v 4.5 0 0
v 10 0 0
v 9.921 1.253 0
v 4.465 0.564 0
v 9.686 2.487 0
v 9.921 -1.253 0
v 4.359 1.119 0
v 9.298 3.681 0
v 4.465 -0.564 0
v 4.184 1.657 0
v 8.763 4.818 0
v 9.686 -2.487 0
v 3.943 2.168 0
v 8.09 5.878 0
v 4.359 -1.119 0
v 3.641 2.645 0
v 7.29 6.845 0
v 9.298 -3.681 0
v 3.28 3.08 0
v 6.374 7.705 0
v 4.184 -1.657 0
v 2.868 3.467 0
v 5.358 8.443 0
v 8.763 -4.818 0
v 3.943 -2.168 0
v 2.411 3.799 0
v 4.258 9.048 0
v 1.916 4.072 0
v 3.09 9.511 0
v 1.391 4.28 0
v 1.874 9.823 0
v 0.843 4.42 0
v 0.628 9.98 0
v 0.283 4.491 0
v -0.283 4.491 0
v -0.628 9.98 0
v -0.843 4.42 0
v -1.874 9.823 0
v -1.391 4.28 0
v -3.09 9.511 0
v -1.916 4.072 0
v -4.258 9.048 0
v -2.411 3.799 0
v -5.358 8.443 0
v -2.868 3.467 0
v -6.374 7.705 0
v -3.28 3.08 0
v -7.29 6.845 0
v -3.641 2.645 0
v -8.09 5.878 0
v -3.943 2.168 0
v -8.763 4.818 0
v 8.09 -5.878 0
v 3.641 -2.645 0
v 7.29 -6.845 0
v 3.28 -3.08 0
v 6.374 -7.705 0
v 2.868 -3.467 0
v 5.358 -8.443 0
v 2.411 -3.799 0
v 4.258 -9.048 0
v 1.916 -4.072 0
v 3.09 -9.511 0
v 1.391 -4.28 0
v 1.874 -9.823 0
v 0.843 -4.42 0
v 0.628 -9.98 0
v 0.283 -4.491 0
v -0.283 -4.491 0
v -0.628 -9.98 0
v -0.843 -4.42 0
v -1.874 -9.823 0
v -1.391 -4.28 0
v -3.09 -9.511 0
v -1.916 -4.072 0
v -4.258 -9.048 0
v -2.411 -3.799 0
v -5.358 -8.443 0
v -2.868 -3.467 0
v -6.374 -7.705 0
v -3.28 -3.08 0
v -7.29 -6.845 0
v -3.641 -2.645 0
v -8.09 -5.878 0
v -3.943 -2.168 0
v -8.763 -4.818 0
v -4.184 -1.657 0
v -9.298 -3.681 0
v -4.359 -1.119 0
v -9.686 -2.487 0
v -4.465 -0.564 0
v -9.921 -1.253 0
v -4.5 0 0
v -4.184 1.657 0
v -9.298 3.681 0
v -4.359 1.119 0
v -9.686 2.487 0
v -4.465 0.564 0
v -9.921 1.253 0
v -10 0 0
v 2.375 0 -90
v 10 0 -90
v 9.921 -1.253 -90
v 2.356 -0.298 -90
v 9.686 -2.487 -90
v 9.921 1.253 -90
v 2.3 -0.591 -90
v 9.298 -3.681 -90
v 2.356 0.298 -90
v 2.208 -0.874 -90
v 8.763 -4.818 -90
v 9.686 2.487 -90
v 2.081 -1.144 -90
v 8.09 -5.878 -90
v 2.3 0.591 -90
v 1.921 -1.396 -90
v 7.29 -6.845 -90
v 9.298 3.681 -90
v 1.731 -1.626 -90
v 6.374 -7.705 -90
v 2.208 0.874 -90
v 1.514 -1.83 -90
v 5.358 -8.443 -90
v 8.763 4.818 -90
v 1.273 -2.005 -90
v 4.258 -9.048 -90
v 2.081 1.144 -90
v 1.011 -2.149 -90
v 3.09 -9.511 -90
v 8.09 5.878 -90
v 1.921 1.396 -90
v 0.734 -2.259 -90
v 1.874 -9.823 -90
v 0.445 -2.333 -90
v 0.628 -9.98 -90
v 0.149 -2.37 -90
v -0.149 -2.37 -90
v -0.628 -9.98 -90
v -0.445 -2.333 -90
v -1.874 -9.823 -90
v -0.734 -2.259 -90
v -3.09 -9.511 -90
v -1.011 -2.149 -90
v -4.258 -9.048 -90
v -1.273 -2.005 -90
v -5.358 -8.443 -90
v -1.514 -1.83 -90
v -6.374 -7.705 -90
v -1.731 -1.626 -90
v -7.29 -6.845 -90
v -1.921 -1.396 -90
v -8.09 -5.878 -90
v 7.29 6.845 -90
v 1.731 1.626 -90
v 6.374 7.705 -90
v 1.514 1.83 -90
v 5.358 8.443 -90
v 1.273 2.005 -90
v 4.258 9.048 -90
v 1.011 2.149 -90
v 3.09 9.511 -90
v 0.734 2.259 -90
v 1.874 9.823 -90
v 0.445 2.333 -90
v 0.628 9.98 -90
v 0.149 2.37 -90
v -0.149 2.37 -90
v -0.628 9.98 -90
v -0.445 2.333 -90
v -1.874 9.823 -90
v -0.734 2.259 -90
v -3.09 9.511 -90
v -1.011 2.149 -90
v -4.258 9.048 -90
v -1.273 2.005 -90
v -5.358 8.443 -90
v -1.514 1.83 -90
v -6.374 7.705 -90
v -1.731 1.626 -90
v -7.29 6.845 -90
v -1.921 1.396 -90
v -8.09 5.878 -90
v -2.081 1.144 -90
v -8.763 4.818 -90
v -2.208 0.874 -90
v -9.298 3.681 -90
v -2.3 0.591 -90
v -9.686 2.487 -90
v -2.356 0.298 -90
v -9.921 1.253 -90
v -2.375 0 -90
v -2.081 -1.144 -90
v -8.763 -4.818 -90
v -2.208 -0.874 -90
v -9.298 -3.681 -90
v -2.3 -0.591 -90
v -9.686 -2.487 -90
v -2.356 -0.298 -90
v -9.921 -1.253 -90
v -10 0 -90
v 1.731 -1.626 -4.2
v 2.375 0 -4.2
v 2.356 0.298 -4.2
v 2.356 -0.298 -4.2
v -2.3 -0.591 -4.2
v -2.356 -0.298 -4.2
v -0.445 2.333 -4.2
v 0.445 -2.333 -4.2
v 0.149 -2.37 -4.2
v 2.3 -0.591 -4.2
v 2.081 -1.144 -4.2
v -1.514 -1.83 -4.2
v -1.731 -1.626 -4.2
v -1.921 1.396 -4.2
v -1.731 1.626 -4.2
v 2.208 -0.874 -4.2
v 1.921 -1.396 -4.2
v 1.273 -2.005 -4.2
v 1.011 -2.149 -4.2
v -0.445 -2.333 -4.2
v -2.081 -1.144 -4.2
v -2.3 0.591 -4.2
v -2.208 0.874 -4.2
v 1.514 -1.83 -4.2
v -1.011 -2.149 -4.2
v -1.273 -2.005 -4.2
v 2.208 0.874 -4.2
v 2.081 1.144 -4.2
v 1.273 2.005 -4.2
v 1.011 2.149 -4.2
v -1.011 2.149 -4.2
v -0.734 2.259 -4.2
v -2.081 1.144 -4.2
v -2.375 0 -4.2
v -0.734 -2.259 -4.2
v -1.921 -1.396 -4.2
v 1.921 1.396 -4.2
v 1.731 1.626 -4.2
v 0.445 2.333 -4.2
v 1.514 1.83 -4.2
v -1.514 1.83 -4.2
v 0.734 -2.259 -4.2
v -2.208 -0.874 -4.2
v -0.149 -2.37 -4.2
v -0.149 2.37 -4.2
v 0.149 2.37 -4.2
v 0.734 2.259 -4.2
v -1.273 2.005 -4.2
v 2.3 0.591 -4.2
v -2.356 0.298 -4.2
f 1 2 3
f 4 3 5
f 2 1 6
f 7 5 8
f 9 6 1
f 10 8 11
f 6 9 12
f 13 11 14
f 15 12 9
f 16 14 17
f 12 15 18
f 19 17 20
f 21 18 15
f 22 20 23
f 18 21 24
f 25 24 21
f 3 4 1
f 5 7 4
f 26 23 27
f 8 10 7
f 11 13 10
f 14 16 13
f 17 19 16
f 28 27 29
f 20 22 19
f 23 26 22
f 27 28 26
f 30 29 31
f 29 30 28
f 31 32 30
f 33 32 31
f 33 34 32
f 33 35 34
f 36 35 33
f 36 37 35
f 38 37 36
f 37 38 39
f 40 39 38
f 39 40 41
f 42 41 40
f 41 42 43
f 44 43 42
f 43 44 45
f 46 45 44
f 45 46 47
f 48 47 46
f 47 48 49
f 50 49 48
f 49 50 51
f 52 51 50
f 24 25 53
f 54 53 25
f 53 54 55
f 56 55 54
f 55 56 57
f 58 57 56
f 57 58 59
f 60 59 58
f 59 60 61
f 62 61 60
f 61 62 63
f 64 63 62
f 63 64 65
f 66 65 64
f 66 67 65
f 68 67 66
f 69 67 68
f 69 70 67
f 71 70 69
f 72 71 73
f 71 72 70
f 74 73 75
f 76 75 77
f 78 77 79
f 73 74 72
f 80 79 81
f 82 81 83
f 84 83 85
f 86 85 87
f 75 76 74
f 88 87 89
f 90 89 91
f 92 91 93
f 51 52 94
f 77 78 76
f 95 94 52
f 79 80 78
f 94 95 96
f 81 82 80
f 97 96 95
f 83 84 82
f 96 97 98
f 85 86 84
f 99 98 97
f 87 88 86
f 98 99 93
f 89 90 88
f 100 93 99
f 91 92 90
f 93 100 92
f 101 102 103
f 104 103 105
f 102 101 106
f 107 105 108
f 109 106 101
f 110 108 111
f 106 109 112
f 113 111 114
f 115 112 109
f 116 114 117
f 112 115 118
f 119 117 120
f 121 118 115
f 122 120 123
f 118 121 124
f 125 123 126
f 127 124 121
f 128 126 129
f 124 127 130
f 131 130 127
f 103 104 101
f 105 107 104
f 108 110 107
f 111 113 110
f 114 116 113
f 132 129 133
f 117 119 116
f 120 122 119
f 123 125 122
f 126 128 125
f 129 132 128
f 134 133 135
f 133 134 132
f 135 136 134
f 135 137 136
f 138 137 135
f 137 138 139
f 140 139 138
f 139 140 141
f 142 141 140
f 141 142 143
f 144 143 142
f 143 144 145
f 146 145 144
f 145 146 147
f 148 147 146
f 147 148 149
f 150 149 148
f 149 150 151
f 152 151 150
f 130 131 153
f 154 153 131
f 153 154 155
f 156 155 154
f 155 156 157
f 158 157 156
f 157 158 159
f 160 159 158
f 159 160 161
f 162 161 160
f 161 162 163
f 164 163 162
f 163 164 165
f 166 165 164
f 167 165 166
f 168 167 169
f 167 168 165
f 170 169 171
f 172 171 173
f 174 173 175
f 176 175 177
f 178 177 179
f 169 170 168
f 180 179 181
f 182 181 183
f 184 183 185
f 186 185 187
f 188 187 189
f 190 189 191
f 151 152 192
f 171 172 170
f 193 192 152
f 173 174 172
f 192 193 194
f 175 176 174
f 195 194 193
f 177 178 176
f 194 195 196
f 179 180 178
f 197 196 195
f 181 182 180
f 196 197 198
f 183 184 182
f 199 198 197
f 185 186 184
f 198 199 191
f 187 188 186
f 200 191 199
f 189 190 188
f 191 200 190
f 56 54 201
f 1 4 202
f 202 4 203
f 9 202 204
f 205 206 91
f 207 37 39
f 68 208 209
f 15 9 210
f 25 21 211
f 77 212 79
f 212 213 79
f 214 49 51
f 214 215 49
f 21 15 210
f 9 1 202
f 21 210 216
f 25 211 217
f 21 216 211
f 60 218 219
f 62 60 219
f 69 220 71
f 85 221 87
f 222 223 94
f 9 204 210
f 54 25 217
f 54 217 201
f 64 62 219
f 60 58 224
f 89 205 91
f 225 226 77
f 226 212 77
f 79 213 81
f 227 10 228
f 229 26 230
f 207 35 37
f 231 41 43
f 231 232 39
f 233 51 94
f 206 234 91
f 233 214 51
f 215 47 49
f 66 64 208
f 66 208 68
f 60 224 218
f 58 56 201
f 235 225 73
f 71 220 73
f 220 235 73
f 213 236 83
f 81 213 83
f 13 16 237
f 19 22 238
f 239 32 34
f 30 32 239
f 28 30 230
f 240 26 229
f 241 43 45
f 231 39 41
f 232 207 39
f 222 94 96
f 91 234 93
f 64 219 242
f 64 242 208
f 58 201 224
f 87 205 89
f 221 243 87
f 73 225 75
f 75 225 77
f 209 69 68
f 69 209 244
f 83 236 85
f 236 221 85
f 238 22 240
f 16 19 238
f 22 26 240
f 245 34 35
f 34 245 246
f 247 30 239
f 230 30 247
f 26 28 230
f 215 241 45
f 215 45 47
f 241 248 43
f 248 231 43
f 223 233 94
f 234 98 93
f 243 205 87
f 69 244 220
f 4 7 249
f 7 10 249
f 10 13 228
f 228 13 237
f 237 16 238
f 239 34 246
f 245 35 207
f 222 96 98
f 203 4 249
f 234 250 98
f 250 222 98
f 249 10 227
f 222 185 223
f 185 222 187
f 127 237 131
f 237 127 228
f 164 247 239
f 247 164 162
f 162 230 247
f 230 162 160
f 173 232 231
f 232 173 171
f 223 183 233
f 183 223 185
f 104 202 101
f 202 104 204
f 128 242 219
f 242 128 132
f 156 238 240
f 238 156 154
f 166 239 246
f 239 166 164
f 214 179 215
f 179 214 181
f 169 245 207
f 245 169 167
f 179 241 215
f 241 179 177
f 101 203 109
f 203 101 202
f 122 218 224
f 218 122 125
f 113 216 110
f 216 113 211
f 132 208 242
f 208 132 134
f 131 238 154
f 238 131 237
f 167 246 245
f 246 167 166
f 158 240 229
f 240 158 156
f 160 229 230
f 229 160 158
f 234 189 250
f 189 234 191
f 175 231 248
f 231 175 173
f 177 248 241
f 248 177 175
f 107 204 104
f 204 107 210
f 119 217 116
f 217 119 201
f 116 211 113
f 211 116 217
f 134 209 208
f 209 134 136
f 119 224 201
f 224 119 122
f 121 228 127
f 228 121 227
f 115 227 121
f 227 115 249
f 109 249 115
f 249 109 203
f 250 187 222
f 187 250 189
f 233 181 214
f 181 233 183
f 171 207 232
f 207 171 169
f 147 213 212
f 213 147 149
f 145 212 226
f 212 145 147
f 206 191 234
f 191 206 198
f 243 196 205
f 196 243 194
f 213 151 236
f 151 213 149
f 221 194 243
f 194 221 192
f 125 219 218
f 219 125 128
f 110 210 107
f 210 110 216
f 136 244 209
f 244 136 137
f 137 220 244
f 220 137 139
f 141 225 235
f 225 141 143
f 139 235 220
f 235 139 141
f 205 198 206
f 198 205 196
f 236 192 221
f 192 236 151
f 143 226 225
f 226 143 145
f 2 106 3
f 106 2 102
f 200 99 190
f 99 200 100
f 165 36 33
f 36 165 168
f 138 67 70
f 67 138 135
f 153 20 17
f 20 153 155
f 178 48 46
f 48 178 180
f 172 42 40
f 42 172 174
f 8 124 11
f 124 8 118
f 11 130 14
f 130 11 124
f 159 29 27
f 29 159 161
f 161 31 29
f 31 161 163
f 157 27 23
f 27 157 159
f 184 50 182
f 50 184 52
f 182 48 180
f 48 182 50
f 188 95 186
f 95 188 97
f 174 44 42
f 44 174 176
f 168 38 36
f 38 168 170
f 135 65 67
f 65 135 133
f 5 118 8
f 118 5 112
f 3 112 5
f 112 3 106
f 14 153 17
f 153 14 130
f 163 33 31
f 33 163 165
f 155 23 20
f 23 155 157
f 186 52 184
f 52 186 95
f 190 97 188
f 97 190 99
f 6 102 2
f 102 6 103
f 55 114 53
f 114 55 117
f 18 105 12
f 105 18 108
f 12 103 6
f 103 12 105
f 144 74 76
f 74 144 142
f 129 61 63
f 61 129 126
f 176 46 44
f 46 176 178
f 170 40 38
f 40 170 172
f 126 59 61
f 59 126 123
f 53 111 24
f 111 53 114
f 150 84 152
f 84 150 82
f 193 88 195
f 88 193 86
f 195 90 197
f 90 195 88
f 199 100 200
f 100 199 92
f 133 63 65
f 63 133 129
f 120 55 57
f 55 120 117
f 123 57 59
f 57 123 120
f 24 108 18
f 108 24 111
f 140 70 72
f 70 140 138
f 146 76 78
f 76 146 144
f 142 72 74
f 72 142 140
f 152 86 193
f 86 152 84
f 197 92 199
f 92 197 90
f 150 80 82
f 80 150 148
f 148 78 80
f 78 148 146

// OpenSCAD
$fn = 50;


difference() {
	union() {
		translate(v = [0, 0, -90.0000000000]) {
			cylinder(h = 90, r = 10.0000000000);
		}
		cylinder(h = 0, r = 20.0000000000);
	}
	union() {
		translate(v = [0, 0, 0]) {
			rotate(a = [0, 0, 0]) {
				difference() {
					union() {
						#translate(v = [0, 0, -90.0000000000]) {
							cylinder(h = 90, r = 2.2500000000);
						}
						#translate(v = [0, 0, -4.2000000000]) {
							cylinder(h = 4.2000000000, r = 10.0000000000, r1 = 2.3750000000, r2 = 4.5000000000);
						}
						#translate(v = [0, 0, -90.0000000000]) {
							cylinder(h = 90, r = 2.3750000000);
						}
						#translate(v = [0, 0, -90.0000000000]) {
							cylinder(h = 90, r = 2.2500000000);
						}
					}
					union();
				}
			}
		}
	}
}
